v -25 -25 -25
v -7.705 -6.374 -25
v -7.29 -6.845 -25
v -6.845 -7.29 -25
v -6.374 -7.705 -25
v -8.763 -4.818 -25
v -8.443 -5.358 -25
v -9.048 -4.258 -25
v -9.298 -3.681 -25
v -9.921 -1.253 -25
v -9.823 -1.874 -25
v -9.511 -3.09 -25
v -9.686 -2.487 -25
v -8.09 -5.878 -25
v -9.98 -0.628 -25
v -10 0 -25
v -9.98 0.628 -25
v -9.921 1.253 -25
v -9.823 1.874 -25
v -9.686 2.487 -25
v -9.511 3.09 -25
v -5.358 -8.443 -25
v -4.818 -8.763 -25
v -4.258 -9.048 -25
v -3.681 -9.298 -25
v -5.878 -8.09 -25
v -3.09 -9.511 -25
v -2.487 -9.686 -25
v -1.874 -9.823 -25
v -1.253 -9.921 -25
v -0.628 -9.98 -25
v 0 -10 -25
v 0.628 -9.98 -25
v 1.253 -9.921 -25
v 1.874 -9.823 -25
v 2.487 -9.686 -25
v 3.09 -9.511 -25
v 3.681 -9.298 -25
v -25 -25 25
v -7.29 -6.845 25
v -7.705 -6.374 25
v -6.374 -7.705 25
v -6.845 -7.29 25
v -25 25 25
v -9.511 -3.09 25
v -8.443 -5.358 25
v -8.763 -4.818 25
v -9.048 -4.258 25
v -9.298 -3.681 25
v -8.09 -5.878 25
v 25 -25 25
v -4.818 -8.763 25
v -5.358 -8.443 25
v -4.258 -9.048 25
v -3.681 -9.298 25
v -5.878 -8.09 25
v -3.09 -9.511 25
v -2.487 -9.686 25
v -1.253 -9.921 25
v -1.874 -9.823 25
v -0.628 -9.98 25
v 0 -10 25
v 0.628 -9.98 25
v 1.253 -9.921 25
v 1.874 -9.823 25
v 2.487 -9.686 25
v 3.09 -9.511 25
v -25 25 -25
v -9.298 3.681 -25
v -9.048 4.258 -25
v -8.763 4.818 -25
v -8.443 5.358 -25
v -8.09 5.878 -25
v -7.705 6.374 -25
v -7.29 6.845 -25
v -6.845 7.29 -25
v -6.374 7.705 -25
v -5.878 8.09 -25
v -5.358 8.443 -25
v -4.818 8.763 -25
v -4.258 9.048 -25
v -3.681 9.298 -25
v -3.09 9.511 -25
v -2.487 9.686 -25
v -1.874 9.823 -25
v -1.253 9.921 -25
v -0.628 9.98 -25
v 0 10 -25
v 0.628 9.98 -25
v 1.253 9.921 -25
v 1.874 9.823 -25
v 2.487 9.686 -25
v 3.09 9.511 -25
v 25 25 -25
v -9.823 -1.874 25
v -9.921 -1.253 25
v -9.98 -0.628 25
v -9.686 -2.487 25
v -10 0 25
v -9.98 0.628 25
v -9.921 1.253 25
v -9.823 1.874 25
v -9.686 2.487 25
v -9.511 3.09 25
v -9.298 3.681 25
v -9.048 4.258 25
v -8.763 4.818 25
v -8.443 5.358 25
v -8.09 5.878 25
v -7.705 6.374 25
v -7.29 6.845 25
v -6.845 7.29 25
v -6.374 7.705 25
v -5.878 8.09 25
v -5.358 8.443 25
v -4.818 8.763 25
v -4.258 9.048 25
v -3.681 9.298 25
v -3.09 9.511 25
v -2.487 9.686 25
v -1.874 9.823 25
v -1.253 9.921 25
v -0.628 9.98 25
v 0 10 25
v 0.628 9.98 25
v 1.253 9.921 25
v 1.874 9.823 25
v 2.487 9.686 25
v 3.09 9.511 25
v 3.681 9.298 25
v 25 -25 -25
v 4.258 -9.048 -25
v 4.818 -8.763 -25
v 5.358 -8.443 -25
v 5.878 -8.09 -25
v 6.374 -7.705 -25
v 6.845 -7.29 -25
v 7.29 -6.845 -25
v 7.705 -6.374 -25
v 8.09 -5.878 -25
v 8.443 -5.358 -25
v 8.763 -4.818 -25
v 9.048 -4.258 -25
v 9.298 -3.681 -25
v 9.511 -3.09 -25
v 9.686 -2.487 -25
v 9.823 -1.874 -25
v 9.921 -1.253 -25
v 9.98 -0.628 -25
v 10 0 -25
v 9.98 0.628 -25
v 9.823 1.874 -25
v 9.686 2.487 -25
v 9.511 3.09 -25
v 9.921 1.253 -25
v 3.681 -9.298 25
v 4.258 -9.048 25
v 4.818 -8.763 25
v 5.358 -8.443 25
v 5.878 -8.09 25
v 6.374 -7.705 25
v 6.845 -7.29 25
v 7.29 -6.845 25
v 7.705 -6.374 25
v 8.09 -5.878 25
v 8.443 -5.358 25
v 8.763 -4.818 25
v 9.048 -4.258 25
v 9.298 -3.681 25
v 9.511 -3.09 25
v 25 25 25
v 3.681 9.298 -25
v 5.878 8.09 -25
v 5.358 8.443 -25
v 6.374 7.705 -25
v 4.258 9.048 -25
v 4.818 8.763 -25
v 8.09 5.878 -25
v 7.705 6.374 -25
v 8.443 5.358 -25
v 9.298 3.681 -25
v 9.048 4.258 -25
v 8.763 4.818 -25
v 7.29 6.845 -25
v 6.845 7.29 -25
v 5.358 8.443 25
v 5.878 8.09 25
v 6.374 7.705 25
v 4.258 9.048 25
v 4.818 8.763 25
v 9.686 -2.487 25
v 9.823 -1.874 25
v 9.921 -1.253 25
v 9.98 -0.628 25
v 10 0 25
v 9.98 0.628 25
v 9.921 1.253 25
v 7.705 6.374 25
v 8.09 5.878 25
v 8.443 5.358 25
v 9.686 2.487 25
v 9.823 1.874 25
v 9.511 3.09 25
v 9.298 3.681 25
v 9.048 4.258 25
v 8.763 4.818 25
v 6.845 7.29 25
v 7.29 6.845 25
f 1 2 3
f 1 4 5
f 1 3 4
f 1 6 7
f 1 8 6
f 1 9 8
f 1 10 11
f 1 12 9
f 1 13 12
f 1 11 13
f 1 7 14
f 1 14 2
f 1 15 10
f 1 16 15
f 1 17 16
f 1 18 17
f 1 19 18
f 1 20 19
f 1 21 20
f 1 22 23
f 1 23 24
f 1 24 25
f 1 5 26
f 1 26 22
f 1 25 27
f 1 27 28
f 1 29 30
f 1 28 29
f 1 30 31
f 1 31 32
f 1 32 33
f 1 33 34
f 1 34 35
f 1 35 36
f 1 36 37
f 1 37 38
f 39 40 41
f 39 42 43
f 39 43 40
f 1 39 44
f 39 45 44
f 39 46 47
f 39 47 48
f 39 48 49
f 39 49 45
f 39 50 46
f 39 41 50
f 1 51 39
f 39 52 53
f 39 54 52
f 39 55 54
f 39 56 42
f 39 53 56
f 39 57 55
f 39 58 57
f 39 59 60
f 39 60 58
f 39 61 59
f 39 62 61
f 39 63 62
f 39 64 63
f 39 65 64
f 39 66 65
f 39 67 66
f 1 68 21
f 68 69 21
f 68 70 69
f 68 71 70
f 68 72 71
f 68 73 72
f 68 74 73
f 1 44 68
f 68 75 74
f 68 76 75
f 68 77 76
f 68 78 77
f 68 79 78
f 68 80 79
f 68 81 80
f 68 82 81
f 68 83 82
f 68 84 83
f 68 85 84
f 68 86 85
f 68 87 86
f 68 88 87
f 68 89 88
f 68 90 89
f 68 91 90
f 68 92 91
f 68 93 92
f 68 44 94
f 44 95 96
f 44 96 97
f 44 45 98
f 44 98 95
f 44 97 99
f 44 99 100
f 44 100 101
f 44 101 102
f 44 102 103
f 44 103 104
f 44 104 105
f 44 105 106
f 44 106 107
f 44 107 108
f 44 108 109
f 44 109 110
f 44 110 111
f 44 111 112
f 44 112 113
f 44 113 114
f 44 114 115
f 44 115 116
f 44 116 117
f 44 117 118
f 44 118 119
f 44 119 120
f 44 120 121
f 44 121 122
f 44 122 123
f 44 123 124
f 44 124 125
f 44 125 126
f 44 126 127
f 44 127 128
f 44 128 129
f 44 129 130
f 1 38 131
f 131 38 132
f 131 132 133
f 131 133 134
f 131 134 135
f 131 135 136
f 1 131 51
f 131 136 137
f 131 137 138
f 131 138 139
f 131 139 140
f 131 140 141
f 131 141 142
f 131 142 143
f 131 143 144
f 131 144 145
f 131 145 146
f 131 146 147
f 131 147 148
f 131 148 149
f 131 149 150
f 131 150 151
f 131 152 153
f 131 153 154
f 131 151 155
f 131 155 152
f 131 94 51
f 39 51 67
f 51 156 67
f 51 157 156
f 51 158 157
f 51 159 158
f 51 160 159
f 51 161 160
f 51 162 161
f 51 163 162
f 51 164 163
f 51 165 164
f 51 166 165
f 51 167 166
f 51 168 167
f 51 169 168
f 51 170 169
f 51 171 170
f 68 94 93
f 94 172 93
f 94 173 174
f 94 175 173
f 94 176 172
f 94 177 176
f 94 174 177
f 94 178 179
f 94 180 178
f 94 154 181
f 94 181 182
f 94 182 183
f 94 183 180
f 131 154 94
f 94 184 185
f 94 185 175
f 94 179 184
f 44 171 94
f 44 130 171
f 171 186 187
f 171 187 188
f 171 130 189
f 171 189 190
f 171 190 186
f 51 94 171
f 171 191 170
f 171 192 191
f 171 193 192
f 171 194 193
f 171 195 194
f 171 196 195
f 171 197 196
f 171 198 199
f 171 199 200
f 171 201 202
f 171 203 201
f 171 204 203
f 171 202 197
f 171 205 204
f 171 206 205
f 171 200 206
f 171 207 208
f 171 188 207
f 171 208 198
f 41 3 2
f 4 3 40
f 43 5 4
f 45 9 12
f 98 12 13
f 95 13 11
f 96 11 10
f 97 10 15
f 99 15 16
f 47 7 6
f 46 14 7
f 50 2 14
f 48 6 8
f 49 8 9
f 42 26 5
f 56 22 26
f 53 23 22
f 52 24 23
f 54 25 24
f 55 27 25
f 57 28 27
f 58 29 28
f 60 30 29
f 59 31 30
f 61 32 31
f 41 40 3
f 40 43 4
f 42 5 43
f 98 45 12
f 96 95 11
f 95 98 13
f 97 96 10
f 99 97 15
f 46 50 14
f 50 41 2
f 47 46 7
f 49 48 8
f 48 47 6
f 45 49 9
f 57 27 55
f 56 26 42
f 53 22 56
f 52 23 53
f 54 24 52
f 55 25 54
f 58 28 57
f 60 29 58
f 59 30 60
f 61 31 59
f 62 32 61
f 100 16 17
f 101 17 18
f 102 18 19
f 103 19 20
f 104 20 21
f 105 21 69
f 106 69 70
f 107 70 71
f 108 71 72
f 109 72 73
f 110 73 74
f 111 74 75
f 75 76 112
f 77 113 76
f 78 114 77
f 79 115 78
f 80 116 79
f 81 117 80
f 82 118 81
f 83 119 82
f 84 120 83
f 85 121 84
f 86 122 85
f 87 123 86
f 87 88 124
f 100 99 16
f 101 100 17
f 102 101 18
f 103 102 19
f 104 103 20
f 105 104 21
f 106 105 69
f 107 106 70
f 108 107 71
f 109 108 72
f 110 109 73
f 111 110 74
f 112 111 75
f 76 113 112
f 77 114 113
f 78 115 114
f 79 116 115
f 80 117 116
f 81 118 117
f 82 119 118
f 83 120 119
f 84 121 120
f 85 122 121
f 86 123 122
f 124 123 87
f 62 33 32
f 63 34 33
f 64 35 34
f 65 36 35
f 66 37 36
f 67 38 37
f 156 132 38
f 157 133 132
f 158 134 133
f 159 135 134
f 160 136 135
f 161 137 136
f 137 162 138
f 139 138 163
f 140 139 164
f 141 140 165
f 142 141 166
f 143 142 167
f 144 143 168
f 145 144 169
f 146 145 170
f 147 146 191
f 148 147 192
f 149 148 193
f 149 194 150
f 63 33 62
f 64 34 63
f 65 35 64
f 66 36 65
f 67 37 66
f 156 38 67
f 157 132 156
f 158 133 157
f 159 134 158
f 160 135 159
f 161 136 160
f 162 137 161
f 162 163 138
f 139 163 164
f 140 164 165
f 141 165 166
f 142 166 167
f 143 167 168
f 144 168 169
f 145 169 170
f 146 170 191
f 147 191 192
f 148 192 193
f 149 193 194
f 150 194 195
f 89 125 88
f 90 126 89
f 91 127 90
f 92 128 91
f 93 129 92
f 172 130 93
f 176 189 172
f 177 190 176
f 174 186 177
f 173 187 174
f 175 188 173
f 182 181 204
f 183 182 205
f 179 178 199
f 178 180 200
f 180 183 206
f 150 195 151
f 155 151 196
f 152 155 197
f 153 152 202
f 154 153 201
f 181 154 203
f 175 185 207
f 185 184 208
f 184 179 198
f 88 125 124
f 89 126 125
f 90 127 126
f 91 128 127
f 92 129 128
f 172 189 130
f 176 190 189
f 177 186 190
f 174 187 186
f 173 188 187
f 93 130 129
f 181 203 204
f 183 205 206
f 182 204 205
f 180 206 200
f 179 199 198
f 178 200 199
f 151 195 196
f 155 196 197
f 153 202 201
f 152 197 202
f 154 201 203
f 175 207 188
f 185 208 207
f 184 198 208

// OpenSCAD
difference() {
    cube([50, 50, 50], center = true);
    cylinder(h = 60, d = 20, center = true, $fn = 100);
}
